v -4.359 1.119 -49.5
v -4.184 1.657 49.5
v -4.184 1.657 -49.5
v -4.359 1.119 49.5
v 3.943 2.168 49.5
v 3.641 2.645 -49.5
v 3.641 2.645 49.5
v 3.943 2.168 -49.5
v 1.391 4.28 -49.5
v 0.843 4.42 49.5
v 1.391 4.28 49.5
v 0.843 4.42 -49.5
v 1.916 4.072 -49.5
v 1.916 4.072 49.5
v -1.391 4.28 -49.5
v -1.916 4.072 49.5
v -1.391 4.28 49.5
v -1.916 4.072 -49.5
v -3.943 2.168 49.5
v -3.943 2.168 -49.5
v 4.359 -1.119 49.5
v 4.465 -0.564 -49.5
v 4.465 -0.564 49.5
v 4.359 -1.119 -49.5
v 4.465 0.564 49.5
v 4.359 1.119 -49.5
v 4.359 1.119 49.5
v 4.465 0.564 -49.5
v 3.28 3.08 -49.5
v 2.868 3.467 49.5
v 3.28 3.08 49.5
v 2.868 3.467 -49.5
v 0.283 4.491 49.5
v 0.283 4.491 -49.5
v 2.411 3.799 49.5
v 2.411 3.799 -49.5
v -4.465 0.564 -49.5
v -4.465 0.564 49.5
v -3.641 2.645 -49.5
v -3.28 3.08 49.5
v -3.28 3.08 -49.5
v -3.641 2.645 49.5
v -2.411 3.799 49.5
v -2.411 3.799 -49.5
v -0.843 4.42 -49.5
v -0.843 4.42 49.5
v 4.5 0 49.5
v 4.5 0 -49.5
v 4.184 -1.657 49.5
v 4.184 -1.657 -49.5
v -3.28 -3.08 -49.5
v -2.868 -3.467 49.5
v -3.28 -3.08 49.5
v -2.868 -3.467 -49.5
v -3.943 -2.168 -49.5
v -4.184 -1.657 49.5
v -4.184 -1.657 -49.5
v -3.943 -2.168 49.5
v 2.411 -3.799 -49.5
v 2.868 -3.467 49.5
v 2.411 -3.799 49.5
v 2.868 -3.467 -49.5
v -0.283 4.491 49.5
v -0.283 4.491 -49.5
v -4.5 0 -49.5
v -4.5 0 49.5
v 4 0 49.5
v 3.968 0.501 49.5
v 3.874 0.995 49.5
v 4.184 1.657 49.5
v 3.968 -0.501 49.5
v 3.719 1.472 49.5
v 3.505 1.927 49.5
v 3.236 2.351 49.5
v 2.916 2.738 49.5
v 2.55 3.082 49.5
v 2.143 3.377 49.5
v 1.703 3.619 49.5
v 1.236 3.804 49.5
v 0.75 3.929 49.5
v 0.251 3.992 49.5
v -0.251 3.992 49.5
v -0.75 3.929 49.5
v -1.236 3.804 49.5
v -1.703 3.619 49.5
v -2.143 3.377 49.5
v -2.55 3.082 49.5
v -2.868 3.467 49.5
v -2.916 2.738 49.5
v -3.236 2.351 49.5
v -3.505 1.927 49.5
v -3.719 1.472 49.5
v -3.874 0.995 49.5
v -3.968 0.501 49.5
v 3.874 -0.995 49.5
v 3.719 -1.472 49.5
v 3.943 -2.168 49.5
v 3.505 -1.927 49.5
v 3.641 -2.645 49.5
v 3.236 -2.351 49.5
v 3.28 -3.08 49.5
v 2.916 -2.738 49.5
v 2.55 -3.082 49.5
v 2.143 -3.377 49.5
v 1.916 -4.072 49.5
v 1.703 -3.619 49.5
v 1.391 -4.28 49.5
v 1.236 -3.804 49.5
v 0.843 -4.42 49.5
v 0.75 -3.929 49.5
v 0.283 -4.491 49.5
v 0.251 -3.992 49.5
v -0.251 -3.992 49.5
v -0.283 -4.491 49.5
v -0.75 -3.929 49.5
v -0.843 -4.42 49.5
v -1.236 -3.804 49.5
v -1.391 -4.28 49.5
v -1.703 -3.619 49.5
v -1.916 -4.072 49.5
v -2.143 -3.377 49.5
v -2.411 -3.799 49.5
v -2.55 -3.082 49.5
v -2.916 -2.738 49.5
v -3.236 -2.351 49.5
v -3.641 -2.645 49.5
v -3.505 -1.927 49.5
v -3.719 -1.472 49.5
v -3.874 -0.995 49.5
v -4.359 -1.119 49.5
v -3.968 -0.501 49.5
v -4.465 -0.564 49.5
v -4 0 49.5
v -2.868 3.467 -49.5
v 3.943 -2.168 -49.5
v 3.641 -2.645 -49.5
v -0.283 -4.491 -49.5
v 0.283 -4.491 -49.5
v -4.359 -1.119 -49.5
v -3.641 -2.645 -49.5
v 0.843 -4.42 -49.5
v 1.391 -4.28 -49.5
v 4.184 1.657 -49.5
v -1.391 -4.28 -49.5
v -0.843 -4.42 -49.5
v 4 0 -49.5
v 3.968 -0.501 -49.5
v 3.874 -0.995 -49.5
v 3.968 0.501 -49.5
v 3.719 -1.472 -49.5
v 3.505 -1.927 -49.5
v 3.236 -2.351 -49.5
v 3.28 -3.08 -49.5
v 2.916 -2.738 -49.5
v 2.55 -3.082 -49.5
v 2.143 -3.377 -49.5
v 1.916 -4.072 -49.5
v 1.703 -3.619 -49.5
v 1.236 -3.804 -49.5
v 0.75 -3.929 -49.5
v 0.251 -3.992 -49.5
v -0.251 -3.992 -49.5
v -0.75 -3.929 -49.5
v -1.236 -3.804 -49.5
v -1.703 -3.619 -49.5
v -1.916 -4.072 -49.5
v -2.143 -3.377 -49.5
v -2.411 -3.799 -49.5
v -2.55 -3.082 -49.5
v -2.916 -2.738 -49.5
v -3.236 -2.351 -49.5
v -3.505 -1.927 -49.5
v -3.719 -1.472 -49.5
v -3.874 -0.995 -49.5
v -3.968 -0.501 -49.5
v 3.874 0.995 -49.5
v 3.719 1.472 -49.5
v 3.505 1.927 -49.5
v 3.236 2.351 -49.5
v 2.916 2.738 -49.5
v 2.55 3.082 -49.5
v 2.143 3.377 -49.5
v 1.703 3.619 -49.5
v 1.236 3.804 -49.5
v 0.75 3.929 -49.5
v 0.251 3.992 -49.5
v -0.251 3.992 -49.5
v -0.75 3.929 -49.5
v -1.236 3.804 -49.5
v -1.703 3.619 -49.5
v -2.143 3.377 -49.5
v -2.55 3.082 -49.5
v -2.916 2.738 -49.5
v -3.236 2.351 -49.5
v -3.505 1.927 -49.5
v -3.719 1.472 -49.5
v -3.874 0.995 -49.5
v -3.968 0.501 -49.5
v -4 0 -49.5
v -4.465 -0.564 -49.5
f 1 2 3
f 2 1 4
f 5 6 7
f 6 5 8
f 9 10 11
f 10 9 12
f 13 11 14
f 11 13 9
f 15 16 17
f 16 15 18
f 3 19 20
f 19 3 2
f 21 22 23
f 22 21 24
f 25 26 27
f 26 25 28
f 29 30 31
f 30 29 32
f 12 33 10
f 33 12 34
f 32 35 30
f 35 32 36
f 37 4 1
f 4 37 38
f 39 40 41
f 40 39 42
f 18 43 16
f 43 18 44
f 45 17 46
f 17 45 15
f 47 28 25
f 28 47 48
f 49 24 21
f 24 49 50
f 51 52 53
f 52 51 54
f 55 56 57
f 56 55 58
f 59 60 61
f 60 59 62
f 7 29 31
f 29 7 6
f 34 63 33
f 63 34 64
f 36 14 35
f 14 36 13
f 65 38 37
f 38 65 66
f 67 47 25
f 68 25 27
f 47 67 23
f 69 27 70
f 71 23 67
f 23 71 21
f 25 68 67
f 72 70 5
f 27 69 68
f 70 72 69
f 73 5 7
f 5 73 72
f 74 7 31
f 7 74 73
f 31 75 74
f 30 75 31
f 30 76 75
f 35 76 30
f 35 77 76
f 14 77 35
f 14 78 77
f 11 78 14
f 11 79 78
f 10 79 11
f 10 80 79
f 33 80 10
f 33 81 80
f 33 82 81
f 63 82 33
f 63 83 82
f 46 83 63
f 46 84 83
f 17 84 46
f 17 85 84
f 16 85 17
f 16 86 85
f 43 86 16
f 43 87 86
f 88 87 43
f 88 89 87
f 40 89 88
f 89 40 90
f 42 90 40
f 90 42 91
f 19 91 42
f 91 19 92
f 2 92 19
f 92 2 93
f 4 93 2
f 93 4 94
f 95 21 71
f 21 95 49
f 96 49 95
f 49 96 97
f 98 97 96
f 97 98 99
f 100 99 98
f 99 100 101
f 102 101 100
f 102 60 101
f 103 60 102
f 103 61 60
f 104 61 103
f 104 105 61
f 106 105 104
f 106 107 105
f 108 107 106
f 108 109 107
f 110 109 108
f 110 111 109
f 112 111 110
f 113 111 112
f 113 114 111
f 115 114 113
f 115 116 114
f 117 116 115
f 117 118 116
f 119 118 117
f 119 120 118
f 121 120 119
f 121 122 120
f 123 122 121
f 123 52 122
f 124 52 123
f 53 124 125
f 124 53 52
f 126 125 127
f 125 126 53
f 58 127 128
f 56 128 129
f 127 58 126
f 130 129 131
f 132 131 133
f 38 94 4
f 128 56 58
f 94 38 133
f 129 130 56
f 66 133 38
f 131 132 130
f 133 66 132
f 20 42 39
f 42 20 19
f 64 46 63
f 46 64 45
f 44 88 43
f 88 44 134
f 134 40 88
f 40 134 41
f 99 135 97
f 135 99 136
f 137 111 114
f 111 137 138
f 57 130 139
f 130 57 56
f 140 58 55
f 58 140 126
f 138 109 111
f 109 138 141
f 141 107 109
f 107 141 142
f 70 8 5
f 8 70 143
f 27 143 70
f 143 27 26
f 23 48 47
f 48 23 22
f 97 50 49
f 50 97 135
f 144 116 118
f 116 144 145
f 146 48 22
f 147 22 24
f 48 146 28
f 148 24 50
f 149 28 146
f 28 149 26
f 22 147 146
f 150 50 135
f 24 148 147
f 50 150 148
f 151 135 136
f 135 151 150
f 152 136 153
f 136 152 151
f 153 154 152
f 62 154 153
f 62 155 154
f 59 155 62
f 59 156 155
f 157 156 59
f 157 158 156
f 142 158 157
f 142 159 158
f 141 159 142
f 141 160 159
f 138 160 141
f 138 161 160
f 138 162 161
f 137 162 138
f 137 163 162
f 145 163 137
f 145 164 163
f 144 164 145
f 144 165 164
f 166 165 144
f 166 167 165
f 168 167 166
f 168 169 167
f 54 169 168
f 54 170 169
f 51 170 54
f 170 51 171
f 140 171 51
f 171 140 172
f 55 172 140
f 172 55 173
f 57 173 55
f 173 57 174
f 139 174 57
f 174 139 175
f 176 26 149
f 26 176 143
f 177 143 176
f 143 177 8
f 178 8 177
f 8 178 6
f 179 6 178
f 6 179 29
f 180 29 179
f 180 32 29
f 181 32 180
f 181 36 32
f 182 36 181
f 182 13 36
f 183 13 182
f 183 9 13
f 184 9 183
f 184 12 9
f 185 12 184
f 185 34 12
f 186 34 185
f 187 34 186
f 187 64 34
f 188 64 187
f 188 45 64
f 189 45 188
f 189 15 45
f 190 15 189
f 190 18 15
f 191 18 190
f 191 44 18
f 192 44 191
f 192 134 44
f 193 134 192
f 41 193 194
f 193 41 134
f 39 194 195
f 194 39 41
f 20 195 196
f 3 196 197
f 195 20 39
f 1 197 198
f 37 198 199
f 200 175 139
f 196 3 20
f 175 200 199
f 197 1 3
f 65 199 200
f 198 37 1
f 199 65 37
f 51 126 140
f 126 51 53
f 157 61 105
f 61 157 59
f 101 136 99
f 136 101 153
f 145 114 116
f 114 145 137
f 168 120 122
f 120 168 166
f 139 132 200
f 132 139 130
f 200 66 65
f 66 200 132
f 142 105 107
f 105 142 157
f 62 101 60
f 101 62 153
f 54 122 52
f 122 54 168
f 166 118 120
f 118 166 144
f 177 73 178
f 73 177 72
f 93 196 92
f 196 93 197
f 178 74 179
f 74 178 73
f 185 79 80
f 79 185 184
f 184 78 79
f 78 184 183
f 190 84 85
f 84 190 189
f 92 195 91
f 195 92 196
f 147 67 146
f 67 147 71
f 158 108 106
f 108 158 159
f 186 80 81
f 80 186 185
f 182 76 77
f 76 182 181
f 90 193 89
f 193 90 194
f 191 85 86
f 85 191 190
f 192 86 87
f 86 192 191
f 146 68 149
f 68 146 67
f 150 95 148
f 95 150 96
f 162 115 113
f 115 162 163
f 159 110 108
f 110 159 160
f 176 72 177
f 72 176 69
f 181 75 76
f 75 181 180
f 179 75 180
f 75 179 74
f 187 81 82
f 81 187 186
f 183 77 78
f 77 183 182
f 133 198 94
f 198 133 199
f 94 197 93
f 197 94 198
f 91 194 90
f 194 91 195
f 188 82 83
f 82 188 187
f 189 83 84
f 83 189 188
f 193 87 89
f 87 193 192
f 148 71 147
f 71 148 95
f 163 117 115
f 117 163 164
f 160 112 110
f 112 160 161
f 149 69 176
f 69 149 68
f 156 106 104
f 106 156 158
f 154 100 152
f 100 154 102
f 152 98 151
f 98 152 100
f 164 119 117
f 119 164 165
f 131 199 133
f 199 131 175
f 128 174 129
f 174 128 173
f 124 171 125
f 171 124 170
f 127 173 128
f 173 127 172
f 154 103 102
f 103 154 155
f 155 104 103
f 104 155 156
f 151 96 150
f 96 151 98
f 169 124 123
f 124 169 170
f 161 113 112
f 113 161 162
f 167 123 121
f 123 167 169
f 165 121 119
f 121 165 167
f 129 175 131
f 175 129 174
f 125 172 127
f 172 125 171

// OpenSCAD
$fn = 50;


difference() {
	union() {
		translate(v = [0, 0, -49.5000000000]) {
			cylinder(h = 99, r = 4.5000000000);
		}
	}
	union() {
		translate(v = [0, 0, -100.0000000000]) {
			cylinder(h = 200, r = 4);
		}
	}
}
